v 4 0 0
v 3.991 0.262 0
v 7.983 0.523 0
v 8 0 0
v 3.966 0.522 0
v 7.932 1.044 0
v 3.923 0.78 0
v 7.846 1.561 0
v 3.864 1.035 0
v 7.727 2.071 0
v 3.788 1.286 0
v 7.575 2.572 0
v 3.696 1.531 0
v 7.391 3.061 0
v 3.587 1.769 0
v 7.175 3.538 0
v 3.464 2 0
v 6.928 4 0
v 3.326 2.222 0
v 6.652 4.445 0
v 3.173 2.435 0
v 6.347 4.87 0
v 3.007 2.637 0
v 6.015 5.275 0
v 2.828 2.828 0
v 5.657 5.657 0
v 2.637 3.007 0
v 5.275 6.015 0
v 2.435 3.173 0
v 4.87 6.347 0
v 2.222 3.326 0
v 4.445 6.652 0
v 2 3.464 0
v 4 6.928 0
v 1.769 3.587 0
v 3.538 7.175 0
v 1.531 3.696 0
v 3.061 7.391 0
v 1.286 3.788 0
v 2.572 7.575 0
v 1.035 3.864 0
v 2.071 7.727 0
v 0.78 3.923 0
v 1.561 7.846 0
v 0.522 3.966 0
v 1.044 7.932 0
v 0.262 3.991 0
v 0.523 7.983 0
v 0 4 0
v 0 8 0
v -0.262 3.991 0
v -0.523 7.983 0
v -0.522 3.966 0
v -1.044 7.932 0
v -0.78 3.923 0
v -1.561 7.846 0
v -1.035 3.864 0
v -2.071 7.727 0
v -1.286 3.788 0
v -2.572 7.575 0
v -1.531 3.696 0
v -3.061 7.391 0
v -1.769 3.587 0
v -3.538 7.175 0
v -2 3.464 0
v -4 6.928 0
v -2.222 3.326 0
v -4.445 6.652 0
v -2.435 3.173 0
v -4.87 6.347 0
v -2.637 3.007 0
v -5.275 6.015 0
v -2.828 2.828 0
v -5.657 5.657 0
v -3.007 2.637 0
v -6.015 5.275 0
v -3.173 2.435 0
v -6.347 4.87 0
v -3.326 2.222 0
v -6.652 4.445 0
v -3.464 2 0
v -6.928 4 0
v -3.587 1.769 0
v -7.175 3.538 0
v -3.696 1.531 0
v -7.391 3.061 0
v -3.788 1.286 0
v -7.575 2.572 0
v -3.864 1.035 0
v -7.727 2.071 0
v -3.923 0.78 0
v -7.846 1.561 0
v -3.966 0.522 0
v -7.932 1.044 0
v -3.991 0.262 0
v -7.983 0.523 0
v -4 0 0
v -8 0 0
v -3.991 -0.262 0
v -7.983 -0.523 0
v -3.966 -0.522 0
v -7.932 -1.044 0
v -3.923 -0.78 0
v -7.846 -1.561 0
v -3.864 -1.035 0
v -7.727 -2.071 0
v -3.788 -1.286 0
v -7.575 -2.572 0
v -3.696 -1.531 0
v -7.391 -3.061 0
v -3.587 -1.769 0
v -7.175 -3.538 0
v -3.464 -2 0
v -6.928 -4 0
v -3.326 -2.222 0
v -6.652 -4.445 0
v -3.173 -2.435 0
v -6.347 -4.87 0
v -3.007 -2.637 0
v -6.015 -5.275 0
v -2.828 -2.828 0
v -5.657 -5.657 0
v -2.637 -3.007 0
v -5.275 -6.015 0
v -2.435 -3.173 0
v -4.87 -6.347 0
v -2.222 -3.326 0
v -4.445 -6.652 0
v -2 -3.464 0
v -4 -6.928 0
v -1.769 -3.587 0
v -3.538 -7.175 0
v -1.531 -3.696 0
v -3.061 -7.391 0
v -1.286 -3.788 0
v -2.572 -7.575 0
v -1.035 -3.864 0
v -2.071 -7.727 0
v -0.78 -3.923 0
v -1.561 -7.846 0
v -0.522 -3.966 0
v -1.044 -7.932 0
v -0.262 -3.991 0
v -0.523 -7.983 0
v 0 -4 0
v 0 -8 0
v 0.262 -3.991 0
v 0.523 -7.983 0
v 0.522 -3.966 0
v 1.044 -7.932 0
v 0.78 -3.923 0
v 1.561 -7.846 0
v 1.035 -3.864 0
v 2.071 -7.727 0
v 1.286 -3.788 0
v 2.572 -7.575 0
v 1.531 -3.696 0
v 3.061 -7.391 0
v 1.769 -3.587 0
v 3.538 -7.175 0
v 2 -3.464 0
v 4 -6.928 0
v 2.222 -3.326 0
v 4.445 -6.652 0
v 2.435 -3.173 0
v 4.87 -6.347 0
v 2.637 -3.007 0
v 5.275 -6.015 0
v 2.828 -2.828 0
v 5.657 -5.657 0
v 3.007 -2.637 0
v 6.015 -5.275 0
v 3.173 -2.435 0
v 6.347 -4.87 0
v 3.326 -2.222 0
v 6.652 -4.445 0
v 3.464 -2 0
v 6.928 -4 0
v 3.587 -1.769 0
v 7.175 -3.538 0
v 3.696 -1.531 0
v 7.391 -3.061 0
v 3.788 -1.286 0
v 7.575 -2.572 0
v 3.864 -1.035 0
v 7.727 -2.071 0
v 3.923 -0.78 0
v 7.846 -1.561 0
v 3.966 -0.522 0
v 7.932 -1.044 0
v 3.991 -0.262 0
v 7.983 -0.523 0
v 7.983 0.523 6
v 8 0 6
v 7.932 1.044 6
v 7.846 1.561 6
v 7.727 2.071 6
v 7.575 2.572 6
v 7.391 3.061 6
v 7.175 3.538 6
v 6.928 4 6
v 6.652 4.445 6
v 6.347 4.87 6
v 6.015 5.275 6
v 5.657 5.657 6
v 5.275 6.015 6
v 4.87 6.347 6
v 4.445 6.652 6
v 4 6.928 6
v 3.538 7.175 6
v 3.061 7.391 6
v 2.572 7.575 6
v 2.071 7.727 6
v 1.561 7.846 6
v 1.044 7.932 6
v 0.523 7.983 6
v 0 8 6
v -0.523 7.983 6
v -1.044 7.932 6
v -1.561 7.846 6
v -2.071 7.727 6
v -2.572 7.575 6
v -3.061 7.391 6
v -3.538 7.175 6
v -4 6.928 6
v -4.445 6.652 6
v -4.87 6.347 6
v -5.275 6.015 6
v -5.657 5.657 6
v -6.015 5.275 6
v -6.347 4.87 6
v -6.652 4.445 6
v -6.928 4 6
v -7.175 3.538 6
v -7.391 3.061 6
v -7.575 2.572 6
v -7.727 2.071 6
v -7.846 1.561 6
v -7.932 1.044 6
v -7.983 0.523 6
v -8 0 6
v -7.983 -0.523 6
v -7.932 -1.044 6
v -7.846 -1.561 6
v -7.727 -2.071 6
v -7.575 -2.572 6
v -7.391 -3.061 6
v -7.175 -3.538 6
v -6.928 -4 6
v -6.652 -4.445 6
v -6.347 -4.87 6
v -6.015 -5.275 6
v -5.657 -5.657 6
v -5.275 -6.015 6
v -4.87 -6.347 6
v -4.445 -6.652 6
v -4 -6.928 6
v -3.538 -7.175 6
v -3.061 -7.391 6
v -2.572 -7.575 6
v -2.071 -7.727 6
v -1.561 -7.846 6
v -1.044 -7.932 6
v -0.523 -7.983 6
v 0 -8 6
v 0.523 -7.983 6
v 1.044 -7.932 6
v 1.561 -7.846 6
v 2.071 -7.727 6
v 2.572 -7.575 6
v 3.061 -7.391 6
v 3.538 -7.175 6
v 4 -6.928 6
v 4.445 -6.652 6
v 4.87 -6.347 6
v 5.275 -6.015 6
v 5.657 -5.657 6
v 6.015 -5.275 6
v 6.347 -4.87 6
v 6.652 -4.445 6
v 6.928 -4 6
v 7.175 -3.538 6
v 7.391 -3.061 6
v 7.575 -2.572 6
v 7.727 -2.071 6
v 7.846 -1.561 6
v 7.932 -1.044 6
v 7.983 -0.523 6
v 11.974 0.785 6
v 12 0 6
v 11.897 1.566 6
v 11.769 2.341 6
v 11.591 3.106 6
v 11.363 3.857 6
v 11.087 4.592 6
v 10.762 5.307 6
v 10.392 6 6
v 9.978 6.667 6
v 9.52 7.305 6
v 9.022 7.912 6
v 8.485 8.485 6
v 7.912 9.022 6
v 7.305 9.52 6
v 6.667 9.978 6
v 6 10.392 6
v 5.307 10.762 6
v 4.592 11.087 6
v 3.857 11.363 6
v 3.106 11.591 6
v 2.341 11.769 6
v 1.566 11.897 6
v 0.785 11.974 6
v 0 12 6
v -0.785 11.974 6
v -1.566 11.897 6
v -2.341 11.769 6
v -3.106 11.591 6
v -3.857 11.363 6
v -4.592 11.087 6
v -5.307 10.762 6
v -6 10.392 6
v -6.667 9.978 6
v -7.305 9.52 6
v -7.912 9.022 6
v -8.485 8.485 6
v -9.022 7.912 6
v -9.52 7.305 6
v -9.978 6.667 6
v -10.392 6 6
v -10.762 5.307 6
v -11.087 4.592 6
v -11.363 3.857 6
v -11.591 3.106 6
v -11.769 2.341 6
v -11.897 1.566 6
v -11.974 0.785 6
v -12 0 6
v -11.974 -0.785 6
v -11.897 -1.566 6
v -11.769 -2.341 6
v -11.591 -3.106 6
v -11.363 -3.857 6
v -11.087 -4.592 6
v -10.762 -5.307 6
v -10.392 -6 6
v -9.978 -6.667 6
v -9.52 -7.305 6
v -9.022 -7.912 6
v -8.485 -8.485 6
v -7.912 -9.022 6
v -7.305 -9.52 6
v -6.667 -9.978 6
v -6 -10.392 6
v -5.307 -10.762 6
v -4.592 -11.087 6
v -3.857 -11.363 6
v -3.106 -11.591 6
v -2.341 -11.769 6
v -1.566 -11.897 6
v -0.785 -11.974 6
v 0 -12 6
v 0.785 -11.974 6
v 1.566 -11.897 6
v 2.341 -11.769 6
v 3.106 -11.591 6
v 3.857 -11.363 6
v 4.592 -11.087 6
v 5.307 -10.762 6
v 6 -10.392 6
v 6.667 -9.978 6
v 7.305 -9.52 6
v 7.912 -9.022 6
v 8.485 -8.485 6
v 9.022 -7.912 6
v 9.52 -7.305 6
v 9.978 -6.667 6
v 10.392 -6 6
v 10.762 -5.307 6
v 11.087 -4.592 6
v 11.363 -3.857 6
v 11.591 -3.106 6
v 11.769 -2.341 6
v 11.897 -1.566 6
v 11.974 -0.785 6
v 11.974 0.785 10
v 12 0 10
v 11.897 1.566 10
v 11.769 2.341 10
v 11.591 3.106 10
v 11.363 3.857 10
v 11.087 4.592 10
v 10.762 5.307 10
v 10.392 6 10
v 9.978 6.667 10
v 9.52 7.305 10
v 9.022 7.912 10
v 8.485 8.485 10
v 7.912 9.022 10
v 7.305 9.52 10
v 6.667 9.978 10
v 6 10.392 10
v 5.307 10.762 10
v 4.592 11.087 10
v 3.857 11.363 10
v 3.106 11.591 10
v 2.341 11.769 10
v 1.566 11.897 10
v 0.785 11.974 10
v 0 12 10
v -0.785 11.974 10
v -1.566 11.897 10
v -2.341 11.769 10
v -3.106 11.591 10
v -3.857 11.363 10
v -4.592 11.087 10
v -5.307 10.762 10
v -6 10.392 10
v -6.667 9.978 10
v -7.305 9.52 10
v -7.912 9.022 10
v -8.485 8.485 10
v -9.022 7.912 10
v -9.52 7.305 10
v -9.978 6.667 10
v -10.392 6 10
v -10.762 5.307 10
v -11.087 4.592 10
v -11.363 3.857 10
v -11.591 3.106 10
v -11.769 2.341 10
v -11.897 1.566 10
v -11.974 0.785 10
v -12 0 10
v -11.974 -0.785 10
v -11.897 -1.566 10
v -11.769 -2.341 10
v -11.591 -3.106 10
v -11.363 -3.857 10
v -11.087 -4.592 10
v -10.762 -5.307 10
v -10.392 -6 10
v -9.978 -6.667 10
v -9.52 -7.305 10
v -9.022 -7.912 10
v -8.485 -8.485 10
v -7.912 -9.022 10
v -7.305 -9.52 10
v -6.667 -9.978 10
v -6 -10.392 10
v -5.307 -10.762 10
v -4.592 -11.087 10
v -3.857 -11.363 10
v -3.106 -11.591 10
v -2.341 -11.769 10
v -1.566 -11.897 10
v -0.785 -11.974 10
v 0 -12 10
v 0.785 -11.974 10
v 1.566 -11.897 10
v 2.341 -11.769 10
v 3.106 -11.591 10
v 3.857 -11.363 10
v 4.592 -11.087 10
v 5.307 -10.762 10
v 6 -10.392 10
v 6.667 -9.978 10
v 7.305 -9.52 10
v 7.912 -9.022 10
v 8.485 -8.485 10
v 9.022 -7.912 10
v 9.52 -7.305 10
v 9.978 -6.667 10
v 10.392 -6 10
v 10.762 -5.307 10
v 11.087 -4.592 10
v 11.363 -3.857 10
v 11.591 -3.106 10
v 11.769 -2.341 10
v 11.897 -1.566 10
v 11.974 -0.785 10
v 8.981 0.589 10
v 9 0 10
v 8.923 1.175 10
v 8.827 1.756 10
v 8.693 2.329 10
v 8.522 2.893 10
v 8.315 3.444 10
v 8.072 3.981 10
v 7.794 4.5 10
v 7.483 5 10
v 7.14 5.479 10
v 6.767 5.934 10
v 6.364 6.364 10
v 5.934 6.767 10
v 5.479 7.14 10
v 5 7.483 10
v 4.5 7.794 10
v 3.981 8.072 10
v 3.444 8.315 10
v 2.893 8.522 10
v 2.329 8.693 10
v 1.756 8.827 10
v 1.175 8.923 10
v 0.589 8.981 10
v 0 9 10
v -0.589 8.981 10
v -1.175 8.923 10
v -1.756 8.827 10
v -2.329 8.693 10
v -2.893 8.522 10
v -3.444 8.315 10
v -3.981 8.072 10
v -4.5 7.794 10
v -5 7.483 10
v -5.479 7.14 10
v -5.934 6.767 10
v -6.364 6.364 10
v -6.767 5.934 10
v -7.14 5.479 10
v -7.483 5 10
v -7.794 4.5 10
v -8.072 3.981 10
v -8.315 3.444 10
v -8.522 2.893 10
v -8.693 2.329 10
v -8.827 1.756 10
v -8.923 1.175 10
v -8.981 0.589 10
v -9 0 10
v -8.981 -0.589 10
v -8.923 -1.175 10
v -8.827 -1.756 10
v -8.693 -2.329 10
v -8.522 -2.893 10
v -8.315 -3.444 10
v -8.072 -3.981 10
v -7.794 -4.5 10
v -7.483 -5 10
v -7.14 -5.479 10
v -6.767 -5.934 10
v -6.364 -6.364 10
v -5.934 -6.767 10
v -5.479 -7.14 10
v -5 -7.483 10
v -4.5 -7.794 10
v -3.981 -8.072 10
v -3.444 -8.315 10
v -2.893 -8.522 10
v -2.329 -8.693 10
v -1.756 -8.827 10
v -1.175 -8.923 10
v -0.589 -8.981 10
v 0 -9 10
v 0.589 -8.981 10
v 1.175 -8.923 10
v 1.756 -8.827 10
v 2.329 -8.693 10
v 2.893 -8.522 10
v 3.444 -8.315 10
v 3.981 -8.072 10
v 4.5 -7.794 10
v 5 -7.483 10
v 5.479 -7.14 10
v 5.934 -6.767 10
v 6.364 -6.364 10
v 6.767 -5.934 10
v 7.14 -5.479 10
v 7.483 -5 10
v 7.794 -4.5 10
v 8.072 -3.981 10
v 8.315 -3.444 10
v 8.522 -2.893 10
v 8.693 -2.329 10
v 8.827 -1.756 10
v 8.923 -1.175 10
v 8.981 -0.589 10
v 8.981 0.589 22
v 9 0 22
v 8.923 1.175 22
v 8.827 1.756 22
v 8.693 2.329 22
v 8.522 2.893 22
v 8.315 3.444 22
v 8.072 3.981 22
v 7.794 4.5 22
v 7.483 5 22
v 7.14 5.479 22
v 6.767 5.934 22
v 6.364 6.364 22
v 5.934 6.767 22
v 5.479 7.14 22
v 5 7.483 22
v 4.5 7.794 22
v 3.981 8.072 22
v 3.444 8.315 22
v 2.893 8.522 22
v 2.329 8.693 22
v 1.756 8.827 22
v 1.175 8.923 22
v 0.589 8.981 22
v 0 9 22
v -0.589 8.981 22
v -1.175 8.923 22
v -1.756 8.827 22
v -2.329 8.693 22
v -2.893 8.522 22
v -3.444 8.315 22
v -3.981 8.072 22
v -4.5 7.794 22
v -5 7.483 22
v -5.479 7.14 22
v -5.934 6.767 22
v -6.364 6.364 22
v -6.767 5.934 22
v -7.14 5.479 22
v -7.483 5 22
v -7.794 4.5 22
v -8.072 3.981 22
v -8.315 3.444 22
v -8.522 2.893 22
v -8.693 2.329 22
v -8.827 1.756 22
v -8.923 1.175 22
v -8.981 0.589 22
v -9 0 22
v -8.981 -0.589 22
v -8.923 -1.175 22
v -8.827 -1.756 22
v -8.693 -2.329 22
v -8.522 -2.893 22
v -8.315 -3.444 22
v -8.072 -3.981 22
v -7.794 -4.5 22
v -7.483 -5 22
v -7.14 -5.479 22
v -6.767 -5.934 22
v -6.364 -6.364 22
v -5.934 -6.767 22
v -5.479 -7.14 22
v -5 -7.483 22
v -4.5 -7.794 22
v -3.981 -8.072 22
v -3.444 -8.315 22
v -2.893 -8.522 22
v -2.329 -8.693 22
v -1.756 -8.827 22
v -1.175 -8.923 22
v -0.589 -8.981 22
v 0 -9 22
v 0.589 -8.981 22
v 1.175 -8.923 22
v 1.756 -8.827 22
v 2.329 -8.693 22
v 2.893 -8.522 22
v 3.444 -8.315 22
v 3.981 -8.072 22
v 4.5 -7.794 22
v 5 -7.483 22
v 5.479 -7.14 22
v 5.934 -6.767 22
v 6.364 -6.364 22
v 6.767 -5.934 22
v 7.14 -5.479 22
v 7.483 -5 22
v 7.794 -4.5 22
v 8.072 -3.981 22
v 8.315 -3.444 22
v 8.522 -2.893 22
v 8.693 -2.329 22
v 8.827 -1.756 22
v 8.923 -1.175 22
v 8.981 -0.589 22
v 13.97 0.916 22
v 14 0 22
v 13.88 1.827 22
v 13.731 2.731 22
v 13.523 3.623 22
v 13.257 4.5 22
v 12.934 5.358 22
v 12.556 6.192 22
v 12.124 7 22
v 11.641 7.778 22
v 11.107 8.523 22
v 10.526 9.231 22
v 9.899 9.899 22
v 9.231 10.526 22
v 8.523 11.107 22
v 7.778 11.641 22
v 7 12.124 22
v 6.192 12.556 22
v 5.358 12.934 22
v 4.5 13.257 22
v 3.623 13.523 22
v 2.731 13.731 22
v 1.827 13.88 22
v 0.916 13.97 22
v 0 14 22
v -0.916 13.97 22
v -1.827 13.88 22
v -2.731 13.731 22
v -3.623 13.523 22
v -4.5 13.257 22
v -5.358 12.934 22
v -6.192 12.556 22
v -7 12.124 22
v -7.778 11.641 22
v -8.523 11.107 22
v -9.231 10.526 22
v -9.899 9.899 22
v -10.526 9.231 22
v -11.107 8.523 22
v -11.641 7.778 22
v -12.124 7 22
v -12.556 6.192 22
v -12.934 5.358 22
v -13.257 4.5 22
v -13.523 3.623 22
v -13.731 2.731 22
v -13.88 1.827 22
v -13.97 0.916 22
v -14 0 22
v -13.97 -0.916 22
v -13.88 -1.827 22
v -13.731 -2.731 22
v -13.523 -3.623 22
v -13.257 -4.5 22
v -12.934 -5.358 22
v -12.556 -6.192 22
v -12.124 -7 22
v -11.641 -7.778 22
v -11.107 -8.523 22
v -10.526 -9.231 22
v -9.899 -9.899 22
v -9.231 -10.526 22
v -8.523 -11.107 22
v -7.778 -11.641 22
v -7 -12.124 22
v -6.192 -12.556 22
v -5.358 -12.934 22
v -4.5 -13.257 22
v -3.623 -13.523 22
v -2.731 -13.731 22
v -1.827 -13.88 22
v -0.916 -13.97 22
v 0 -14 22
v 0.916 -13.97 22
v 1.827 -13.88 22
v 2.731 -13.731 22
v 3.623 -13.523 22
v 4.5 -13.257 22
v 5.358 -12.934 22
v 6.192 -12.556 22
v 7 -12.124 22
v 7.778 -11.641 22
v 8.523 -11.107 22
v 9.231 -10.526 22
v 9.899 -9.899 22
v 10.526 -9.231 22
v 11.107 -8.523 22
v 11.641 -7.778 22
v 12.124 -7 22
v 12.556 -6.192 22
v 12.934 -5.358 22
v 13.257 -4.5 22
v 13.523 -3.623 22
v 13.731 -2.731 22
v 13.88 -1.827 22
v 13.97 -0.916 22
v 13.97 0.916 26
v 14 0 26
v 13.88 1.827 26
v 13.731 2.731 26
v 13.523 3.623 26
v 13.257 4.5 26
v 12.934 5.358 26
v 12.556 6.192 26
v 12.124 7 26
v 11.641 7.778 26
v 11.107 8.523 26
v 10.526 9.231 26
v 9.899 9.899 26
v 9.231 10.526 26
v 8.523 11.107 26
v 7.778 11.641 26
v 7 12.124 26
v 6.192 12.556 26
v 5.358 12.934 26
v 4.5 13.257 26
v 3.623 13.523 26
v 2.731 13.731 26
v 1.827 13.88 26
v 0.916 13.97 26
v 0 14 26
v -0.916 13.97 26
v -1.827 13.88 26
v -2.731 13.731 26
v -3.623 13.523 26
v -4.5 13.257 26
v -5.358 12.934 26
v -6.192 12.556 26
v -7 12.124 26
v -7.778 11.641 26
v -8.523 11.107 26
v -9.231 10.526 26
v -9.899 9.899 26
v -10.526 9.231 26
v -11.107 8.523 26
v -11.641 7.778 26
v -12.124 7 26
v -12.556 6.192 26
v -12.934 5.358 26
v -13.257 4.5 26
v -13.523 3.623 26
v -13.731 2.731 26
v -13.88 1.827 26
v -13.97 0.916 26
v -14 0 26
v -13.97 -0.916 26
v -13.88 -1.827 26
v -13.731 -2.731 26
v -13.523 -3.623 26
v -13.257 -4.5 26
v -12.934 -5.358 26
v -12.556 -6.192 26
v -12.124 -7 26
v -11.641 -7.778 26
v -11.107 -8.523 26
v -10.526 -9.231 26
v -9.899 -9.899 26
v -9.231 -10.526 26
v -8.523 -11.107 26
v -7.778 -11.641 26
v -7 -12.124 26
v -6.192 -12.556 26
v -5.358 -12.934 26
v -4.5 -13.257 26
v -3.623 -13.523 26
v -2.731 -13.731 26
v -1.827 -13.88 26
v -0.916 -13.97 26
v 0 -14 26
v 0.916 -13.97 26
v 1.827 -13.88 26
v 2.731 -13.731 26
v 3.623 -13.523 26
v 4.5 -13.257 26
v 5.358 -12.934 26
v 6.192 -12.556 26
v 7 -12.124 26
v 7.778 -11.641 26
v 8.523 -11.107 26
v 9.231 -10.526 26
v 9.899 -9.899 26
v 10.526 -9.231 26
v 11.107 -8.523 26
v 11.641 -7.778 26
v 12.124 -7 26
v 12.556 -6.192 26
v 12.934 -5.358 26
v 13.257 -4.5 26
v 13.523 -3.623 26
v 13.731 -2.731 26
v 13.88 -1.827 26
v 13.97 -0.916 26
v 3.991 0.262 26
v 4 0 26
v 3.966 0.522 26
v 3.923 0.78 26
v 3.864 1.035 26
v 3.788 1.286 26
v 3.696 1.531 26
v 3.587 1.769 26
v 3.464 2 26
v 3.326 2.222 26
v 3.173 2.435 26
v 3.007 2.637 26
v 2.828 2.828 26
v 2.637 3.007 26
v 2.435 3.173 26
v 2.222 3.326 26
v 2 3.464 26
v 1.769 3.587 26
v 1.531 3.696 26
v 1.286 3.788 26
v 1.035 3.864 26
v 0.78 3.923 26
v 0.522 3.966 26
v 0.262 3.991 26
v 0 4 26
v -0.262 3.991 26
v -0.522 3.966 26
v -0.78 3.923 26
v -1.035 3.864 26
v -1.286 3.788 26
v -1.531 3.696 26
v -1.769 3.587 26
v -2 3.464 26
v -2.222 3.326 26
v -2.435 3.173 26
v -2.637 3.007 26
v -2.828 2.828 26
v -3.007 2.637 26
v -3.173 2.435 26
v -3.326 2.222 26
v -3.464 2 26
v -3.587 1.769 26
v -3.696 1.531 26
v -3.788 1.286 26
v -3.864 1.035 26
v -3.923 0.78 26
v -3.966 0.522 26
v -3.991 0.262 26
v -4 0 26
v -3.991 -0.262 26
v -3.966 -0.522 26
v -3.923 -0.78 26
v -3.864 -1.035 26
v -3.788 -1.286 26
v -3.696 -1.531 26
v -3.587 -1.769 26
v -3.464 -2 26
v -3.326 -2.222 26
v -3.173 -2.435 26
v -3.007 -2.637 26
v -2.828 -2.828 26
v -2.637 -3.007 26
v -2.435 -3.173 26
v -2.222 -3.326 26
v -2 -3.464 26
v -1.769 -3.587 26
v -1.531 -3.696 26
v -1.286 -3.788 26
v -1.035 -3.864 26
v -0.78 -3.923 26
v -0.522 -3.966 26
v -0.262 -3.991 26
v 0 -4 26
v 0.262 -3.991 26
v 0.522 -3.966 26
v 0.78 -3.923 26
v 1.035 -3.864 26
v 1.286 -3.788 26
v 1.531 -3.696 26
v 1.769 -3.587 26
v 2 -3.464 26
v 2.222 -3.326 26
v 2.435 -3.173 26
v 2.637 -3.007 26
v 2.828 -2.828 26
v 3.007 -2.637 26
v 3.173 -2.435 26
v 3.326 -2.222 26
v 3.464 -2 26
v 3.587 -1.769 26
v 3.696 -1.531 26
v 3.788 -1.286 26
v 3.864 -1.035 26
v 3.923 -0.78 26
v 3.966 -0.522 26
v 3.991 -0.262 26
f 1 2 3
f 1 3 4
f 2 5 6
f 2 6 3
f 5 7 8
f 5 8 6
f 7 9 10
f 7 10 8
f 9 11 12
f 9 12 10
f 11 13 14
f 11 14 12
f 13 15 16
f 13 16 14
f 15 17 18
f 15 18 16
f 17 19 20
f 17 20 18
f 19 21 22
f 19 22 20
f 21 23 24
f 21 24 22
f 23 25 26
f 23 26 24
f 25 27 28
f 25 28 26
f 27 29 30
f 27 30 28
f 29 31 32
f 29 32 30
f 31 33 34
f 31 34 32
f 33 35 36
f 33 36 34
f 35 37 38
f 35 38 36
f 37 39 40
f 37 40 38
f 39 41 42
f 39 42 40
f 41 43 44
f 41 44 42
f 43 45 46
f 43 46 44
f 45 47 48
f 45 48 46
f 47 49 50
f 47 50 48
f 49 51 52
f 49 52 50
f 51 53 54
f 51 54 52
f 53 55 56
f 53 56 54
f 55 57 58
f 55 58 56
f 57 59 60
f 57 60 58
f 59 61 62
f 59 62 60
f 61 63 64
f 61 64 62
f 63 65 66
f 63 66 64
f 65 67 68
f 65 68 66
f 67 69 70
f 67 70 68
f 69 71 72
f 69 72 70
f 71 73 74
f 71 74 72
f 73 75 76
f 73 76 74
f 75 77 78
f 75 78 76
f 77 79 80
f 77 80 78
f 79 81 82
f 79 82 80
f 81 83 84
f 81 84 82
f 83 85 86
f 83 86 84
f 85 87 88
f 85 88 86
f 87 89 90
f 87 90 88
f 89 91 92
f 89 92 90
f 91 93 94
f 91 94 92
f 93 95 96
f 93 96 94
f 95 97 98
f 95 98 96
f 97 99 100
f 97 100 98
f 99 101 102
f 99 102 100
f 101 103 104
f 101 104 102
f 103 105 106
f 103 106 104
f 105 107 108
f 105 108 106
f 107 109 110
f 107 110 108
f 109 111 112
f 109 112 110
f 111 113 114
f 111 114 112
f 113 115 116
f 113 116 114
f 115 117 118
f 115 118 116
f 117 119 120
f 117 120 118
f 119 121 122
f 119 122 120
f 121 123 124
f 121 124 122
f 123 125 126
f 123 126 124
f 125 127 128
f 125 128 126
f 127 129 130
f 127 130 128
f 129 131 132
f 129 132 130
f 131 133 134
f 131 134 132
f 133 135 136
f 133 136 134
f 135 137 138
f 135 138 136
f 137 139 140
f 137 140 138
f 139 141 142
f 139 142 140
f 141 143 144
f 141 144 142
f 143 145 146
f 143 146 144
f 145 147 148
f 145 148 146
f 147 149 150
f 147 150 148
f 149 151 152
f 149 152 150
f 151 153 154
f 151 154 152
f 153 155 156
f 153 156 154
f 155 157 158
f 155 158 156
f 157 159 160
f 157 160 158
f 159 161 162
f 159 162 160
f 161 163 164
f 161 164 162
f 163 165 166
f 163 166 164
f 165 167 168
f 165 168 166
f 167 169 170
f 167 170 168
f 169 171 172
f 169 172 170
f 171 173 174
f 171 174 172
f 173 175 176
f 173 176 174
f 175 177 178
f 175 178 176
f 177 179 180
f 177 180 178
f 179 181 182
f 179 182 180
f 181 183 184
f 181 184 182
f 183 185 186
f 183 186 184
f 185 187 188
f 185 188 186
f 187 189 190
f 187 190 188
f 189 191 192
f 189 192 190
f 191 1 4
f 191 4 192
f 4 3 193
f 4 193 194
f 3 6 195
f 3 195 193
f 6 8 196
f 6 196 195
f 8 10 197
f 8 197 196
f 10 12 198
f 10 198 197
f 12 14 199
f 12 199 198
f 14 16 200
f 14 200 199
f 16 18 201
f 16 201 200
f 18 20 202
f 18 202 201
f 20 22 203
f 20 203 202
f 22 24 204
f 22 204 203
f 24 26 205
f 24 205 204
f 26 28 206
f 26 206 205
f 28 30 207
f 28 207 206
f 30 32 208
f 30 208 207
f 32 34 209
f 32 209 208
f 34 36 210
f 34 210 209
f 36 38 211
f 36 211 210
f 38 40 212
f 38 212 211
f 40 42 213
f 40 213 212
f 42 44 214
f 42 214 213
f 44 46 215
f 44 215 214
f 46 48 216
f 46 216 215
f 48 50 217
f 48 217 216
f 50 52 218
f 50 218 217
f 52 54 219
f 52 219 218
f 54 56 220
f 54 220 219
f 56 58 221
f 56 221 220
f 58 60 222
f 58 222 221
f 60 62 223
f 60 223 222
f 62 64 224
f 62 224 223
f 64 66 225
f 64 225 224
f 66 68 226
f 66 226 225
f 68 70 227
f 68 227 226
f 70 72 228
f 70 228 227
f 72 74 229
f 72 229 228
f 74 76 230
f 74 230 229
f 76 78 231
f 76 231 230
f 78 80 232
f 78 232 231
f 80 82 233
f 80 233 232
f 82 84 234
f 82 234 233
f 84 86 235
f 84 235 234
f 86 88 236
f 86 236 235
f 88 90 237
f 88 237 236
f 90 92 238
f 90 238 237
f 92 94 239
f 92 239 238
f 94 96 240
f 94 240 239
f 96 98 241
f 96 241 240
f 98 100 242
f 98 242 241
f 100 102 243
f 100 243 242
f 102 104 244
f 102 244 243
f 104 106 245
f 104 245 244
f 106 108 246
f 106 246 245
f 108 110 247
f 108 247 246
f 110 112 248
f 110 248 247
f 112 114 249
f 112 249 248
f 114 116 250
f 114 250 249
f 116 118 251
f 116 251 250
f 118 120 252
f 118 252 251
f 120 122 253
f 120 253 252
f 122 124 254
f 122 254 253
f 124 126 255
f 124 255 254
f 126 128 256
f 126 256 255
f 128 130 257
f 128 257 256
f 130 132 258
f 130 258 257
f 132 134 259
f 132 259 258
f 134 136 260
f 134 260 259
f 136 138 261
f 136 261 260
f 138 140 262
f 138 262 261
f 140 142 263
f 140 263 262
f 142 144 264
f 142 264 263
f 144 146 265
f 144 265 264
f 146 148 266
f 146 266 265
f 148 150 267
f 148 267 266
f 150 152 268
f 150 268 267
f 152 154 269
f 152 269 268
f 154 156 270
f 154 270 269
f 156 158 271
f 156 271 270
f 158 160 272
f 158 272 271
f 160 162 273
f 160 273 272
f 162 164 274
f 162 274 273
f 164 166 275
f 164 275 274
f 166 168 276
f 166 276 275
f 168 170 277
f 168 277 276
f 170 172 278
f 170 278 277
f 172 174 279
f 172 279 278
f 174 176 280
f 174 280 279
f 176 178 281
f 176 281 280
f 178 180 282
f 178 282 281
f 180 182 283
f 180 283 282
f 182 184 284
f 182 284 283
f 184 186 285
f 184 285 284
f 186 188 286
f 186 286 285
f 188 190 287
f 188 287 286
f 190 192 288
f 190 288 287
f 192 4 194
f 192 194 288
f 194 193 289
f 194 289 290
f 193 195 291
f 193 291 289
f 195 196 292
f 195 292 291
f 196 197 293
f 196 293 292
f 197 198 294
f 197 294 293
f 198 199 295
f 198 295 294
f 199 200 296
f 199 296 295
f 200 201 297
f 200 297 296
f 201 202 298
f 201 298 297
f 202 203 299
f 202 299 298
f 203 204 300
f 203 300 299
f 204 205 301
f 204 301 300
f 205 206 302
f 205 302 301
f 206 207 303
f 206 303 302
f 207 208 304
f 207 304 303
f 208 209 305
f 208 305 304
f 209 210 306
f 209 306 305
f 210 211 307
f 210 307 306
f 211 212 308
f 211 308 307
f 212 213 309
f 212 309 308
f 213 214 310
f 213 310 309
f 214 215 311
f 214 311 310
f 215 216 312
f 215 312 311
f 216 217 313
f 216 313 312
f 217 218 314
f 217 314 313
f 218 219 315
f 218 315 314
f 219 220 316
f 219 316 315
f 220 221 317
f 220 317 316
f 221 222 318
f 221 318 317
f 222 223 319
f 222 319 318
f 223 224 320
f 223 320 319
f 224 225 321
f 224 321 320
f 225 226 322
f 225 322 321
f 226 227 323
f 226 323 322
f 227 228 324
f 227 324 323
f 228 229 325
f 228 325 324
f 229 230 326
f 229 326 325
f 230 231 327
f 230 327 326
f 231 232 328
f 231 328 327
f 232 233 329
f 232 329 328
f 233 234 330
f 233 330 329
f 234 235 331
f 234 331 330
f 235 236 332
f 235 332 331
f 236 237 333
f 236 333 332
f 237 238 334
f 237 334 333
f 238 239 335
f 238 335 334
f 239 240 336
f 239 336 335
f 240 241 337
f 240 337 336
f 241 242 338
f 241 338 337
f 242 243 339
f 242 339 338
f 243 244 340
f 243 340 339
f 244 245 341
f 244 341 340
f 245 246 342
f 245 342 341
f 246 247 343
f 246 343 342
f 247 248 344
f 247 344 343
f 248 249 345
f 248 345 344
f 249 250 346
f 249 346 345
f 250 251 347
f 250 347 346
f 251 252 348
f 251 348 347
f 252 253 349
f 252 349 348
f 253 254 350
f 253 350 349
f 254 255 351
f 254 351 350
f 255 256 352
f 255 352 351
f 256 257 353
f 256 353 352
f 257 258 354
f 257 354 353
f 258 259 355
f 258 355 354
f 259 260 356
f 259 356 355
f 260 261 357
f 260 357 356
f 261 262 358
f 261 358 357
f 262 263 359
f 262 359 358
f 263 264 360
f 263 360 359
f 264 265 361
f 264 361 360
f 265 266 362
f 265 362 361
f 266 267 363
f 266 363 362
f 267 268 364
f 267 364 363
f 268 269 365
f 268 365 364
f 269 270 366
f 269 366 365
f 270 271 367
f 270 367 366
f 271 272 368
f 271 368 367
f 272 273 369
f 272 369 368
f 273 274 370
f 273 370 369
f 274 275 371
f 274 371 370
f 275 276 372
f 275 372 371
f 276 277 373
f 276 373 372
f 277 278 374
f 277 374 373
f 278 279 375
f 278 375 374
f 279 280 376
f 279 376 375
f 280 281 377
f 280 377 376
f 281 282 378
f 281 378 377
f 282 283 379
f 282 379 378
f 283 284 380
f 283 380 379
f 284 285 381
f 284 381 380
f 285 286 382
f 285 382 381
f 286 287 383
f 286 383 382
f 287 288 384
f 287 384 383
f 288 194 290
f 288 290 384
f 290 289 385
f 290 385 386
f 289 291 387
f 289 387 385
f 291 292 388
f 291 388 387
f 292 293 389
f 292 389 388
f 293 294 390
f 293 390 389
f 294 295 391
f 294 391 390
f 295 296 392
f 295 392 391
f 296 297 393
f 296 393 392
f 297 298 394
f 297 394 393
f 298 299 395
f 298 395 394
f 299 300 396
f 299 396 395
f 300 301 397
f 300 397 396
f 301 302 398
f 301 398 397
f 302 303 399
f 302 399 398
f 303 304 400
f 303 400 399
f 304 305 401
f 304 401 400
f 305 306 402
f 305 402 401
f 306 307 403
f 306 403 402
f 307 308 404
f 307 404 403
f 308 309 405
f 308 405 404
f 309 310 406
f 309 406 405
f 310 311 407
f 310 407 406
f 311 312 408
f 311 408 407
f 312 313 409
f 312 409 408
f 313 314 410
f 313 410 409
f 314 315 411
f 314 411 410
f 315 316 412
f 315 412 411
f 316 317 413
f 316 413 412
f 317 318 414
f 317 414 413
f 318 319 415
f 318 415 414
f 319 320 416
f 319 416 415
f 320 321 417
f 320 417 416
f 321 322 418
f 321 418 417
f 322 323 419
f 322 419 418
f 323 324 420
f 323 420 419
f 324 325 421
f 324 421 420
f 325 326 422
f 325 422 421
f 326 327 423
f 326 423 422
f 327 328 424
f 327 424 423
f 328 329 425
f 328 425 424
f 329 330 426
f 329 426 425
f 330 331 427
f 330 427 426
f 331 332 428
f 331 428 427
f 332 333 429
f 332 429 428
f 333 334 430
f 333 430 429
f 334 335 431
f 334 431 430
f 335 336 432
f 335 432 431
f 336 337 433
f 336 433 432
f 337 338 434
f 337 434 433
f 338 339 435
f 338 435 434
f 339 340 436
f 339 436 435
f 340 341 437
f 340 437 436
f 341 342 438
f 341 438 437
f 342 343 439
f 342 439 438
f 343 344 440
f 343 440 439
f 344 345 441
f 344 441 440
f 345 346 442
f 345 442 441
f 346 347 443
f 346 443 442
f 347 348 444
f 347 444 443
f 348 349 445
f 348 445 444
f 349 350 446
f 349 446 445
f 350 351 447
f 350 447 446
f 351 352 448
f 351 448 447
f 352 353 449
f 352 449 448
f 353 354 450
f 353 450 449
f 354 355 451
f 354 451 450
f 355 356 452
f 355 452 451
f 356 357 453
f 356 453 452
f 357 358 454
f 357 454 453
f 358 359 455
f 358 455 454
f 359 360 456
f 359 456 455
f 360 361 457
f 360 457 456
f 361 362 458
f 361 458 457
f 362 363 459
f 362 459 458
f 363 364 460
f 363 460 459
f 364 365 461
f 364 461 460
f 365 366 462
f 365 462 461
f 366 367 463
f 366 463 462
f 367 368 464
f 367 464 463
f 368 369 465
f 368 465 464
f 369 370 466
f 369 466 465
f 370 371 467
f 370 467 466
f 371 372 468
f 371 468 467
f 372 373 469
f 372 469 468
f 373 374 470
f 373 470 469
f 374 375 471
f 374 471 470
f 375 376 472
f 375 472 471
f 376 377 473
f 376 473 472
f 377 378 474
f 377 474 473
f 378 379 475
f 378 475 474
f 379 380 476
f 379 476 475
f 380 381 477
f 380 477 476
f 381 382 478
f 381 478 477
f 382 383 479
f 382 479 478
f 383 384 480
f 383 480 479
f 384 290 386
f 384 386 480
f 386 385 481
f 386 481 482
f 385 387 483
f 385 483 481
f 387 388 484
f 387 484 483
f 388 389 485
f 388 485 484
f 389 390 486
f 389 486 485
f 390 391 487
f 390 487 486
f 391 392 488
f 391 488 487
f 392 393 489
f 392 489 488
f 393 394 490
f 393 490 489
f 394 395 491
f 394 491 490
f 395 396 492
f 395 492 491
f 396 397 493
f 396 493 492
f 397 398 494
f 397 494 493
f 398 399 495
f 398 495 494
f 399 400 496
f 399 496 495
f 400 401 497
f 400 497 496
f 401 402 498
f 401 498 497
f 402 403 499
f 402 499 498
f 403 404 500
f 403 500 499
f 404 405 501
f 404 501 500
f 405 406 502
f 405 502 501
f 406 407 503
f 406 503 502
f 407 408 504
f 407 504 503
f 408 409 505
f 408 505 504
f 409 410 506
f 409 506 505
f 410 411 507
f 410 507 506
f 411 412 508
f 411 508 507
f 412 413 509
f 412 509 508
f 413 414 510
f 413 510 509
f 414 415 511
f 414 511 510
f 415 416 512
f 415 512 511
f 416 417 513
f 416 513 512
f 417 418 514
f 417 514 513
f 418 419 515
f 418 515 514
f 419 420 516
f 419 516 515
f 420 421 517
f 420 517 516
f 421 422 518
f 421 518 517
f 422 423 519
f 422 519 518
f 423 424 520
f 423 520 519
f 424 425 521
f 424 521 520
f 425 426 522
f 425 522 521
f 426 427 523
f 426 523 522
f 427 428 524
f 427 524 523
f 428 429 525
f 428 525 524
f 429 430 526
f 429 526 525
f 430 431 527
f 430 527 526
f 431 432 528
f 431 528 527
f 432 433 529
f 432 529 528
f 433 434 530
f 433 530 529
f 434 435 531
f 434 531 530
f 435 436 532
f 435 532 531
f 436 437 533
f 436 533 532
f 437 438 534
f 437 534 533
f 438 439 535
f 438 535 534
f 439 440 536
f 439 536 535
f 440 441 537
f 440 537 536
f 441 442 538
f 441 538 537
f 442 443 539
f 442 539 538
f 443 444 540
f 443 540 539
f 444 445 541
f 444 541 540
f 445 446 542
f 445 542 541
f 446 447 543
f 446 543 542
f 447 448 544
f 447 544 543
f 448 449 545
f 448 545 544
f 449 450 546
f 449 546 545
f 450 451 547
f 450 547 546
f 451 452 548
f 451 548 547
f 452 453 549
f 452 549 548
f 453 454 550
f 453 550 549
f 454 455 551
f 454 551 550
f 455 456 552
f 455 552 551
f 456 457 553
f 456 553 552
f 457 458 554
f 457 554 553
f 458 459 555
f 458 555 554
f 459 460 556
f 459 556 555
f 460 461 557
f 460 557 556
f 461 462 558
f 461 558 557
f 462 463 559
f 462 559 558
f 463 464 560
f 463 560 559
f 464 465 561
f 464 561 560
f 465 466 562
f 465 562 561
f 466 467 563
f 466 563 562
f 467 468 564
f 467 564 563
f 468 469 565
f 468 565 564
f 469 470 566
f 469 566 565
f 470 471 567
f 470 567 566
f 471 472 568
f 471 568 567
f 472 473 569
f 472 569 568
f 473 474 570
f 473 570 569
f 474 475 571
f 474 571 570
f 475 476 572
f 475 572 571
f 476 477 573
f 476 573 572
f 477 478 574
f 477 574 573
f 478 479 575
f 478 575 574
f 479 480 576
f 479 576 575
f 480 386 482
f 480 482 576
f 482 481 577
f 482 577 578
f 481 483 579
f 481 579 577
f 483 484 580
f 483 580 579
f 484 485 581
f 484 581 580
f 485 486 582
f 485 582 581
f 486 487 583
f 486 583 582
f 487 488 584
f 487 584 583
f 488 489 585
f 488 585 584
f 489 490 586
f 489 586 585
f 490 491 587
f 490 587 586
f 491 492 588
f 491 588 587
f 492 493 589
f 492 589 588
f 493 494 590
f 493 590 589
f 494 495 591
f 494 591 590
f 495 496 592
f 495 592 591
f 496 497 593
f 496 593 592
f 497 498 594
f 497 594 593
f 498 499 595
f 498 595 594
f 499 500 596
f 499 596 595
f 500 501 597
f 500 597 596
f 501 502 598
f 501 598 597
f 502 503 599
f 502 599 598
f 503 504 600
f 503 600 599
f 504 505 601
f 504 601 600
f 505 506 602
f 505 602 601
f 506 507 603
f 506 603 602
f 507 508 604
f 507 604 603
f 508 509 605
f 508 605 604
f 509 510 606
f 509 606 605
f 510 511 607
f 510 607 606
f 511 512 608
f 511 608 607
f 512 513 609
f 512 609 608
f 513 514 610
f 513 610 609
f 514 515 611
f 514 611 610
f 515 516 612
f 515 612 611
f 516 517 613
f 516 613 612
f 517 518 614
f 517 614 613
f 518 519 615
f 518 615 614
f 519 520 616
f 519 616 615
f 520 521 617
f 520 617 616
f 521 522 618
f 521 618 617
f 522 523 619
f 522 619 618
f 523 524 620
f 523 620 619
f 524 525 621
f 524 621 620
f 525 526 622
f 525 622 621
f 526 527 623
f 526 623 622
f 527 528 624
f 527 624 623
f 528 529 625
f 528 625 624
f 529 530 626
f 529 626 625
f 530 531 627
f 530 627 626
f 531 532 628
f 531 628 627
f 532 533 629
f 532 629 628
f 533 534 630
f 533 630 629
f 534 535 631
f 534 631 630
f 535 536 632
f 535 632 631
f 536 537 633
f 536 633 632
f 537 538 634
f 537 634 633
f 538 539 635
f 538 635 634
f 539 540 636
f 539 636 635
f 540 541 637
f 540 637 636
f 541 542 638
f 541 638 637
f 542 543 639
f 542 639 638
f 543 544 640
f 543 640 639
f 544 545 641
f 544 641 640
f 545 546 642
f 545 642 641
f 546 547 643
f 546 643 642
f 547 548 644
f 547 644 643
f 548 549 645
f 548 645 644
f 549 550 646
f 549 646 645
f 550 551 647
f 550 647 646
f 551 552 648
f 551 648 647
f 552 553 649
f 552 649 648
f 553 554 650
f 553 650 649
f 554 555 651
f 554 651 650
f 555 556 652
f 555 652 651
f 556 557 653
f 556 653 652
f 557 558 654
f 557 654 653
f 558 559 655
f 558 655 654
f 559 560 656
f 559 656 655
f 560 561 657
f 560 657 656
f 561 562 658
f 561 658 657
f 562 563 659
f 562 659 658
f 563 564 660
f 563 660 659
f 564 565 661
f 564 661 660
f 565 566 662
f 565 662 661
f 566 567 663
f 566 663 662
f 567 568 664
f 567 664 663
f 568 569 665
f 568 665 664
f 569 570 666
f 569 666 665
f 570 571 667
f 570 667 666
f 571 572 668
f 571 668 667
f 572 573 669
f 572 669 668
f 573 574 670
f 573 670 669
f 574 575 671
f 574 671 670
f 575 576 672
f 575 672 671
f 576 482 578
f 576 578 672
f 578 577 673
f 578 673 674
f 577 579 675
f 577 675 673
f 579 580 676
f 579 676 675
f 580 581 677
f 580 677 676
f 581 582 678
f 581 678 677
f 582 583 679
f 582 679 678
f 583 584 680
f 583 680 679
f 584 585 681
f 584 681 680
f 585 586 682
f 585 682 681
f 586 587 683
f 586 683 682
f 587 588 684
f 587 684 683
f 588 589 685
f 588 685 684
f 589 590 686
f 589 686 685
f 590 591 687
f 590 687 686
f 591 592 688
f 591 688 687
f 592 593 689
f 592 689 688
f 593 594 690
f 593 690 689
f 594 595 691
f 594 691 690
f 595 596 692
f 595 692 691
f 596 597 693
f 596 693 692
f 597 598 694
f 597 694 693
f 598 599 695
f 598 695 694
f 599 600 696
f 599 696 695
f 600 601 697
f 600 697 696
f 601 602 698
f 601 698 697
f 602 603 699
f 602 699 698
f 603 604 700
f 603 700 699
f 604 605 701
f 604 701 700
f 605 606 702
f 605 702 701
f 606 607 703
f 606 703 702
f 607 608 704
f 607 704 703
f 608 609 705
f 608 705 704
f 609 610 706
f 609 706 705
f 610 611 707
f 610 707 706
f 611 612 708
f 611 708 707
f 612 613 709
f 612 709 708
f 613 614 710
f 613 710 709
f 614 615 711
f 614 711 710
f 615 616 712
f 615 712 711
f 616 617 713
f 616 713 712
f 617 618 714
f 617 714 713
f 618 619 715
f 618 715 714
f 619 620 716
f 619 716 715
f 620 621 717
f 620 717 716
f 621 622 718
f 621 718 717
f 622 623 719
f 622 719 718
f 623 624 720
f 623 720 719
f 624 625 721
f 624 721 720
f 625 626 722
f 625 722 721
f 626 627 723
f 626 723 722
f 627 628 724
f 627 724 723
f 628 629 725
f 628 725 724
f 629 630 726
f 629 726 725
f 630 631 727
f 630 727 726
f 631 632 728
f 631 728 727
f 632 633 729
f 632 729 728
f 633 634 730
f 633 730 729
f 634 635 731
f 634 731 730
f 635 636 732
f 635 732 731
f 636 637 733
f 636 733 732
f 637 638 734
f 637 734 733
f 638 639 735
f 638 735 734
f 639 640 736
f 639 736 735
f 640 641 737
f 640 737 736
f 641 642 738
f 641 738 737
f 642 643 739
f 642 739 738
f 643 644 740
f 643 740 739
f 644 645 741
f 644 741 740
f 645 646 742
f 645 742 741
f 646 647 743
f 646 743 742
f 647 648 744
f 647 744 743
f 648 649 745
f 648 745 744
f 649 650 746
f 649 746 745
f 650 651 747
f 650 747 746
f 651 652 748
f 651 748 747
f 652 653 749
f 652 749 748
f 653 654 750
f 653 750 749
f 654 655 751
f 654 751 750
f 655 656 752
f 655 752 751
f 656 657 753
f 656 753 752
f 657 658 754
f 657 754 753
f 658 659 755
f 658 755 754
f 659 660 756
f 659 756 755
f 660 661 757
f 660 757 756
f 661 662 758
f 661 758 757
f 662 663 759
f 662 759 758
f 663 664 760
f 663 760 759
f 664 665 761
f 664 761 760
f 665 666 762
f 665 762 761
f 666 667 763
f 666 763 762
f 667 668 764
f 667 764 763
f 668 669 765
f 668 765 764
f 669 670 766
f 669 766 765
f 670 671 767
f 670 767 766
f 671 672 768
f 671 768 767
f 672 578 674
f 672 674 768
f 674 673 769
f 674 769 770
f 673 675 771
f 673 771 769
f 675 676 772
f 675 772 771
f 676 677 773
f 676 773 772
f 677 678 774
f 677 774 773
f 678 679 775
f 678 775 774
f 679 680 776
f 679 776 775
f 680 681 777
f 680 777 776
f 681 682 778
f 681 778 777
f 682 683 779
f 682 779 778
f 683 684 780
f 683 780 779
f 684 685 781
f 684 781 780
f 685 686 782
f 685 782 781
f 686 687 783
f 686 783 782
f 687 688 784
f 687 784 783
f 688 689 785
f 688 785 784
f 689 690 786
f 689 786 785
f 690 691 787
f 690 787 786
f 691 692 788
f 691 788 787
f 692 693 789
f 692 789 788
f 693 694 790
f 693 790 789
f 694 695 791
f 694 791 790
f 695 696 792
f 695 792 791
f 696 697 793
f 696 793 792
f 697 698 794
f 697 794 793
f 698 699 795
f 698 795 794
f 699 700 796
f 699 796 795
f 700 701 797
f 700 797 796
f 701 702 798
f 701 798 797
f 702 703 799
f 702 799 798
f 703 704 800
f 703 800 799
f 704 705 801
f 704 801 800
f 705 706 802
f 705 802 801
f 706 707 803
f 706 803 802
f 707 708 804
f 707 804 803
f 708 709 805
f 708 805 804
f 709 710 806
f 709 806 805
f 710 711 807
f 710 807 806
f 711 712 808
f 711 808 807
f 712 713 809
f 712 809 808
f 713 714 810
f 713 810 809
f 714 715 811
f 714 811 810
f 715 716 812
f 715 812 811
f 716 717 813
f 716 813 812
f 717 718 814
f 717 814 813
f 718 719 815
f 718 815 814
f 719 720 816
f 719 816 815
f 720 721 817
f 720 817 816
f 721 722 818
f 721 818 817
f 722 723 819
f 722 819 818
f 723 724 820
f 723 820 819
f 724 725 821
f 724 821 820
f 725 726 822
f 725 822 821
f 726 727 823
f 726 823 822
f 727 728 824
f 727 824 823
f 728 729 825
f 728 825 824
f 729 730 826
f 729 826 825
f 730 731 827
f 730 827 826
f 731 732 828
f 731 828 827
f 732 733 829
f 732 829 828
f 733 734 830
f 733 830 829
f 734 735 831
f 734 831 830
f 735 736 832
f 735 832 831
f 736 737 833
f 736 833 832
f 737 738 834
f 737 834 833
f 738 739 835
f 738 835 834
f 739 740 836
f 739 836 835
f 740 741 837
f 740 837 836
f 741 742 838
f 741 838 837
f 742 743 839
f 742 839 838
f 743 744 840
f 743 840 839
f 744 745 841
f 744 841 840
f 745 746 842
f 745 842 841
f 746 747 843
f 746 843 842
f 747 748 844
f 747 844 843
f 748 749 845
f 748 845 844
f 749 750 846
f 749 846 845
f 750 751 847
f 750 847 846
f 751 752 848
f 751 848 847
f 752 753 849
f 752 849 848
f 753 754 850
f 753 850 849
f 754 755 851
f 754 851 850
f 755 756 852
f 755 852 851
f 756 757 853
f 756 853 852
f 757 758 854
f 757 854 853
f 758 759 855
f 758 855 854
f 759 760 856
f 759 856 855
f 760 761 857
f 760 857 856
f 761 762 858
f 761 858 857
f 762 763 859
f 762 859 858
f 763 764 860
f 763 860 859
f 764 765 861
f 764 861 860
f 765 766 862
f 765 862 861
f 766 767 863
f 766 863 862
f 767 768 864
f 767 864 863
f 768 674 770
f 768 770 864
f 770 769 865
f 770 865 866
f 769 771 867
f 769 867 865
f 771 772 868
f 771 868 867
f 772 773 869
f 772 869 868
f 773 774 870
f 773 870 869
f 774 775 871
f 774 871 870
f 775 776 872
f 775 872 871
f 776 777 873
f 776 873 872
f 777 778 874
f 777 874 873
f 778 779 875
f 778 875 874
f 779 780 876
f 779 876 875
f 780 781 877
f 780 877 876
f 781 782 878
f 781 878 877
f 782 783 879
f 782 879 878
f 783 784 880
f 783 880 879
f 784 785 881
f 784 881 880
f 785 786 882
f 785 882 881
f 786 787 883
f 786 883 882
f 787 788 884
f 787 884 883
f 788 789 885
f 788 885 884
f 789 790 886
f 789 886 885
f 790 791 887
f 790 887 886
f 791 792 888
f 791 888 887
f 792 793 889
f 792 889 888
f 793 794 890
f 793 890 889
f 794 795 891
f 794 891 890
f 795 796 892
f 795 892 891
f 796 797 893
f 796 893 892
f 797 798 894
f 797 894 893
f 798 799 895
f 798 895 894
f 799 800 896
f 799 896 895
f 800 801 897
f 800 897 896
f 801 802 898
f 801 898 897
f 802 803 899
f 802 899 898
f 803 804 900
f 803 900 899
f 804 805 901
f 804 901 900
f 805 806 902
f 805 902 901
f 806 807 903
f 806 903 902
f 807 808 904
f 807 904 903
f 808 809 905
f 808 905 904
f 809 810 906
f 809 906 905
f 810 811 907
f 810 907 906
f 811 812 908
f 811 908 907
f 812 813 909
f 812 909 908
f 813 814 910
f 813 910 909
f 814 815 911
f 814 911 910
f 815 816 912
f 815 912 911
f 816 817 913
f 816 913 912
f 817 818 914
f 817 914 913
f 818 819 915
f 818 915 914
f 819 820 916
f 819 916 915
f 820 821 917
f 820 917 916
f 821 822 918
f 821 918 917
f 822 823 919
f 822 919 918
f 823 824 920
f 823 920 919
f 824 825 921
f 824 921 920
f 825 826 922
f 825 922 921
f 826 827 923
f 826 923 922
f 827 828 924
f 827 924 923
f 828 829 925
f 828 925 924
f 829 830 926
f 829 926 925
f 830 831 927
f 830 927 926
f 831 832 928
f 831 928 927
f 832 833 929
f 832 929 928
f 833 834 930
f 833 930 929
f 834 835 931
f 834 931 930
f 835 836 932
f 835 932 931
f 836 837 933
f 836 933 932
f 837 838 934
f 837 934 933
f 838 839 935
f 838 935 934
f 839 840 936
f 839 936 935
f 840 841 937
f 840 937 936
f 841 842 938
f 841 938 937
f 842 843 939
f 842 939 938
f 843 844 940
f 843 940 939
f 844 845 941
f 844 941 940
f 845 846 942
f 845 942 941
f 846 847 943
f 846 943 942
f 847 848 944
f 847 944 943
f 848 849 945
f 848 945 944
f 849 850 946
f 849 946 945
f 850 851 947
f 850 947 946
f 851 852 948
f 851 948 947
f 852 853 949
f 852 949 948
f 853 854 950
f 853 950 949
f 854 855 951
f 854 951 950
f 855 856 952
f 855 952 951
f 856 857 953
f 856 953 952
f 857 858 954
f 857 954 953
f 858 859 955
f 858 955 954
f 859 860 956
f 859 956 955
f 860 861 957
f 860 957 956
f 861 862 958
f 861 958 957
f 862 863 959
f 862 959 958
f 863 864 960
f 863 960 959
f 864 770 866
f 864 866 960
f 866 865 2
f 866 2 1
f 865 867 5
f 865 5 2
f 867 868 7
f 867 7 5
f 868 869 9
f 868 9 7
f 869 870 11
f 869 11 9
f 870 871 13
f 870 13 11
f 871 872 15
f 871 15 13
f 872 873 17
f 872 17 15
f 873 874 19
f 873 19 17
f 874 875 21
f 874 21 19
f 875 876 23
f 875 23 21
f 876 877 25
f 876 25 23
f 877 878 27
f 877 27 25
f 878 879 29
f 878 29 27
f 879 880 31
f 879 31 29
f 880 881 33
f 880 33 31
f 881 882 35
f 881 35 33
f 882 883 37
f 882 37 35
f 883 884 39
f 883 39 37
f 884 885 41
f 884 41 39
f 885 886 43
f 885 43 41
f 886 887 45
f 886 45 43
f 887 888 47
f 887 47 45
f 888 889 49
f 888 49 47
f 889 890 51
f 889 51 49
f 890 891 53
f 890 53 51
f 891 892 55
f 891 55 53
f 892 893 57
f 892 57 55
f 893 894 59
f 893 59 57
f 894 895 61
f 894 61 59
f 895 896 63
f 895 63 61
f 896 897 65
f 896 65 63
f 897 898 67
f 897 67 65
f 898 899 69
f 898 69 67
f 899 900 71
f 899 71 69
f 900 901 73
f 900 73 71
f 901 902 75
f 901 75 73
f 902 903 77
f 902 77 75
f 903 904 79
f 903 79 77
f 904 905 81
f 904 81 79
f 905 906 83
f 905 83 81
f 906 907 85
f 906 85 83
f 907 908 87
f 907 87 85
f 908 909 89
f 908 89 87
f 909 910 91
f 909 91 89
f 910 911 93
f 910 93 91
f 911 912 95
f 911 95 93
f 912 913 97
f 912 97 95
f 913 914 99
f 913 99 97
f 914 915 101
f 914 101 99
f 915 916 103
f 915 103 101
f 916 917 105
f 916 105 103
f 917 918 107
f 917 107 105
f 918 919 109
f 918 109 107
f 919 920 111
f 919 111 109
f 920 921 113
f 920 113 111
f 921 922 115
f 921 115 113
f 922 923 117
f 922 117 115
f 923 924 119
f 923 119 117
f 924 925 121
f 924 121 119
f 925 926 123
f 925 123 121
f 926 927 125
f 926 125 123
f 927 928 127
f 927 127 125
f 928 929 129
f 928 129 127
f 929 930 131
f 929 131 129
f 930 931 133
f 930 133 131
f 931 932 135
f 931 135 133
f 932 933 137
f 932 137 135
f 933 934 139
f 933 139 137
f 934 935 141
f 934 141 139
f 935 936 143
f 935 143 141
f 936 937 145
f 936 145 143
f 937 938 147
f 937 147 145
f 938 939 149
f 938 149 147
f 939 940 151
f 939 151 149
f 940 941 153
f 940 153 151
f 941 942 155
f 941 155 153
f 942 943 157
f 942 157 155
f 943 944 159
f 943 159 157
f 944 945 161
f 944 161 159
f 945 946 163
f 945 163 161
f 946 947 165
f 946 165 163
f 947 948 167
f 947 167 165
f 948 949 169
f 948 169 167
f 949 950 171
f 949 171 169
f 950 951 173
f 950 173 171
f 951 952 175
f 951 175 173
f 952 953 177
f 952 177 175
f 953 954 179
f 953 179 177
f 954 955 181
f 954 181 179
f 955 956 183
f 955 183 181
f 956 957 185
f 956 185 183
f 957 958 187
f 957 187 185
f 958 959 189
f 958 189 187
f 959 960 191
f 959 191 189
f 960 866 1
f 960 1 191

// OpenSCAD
// Original MechIntel educational model. CC0-1.0. Units: mm.
// Not a standardized or load-rated component.
$fn=96;
// Section points: [radius, height], mm. Edit to change the profile.
section=[[4, 0], [8, 0], [8, 6], [12, 6], [12, 10], [9, 10], [9, 22], [14, 22], [14, 26], [4, 26]];
rotate_extrude($fn=96) polygon(points=section);
